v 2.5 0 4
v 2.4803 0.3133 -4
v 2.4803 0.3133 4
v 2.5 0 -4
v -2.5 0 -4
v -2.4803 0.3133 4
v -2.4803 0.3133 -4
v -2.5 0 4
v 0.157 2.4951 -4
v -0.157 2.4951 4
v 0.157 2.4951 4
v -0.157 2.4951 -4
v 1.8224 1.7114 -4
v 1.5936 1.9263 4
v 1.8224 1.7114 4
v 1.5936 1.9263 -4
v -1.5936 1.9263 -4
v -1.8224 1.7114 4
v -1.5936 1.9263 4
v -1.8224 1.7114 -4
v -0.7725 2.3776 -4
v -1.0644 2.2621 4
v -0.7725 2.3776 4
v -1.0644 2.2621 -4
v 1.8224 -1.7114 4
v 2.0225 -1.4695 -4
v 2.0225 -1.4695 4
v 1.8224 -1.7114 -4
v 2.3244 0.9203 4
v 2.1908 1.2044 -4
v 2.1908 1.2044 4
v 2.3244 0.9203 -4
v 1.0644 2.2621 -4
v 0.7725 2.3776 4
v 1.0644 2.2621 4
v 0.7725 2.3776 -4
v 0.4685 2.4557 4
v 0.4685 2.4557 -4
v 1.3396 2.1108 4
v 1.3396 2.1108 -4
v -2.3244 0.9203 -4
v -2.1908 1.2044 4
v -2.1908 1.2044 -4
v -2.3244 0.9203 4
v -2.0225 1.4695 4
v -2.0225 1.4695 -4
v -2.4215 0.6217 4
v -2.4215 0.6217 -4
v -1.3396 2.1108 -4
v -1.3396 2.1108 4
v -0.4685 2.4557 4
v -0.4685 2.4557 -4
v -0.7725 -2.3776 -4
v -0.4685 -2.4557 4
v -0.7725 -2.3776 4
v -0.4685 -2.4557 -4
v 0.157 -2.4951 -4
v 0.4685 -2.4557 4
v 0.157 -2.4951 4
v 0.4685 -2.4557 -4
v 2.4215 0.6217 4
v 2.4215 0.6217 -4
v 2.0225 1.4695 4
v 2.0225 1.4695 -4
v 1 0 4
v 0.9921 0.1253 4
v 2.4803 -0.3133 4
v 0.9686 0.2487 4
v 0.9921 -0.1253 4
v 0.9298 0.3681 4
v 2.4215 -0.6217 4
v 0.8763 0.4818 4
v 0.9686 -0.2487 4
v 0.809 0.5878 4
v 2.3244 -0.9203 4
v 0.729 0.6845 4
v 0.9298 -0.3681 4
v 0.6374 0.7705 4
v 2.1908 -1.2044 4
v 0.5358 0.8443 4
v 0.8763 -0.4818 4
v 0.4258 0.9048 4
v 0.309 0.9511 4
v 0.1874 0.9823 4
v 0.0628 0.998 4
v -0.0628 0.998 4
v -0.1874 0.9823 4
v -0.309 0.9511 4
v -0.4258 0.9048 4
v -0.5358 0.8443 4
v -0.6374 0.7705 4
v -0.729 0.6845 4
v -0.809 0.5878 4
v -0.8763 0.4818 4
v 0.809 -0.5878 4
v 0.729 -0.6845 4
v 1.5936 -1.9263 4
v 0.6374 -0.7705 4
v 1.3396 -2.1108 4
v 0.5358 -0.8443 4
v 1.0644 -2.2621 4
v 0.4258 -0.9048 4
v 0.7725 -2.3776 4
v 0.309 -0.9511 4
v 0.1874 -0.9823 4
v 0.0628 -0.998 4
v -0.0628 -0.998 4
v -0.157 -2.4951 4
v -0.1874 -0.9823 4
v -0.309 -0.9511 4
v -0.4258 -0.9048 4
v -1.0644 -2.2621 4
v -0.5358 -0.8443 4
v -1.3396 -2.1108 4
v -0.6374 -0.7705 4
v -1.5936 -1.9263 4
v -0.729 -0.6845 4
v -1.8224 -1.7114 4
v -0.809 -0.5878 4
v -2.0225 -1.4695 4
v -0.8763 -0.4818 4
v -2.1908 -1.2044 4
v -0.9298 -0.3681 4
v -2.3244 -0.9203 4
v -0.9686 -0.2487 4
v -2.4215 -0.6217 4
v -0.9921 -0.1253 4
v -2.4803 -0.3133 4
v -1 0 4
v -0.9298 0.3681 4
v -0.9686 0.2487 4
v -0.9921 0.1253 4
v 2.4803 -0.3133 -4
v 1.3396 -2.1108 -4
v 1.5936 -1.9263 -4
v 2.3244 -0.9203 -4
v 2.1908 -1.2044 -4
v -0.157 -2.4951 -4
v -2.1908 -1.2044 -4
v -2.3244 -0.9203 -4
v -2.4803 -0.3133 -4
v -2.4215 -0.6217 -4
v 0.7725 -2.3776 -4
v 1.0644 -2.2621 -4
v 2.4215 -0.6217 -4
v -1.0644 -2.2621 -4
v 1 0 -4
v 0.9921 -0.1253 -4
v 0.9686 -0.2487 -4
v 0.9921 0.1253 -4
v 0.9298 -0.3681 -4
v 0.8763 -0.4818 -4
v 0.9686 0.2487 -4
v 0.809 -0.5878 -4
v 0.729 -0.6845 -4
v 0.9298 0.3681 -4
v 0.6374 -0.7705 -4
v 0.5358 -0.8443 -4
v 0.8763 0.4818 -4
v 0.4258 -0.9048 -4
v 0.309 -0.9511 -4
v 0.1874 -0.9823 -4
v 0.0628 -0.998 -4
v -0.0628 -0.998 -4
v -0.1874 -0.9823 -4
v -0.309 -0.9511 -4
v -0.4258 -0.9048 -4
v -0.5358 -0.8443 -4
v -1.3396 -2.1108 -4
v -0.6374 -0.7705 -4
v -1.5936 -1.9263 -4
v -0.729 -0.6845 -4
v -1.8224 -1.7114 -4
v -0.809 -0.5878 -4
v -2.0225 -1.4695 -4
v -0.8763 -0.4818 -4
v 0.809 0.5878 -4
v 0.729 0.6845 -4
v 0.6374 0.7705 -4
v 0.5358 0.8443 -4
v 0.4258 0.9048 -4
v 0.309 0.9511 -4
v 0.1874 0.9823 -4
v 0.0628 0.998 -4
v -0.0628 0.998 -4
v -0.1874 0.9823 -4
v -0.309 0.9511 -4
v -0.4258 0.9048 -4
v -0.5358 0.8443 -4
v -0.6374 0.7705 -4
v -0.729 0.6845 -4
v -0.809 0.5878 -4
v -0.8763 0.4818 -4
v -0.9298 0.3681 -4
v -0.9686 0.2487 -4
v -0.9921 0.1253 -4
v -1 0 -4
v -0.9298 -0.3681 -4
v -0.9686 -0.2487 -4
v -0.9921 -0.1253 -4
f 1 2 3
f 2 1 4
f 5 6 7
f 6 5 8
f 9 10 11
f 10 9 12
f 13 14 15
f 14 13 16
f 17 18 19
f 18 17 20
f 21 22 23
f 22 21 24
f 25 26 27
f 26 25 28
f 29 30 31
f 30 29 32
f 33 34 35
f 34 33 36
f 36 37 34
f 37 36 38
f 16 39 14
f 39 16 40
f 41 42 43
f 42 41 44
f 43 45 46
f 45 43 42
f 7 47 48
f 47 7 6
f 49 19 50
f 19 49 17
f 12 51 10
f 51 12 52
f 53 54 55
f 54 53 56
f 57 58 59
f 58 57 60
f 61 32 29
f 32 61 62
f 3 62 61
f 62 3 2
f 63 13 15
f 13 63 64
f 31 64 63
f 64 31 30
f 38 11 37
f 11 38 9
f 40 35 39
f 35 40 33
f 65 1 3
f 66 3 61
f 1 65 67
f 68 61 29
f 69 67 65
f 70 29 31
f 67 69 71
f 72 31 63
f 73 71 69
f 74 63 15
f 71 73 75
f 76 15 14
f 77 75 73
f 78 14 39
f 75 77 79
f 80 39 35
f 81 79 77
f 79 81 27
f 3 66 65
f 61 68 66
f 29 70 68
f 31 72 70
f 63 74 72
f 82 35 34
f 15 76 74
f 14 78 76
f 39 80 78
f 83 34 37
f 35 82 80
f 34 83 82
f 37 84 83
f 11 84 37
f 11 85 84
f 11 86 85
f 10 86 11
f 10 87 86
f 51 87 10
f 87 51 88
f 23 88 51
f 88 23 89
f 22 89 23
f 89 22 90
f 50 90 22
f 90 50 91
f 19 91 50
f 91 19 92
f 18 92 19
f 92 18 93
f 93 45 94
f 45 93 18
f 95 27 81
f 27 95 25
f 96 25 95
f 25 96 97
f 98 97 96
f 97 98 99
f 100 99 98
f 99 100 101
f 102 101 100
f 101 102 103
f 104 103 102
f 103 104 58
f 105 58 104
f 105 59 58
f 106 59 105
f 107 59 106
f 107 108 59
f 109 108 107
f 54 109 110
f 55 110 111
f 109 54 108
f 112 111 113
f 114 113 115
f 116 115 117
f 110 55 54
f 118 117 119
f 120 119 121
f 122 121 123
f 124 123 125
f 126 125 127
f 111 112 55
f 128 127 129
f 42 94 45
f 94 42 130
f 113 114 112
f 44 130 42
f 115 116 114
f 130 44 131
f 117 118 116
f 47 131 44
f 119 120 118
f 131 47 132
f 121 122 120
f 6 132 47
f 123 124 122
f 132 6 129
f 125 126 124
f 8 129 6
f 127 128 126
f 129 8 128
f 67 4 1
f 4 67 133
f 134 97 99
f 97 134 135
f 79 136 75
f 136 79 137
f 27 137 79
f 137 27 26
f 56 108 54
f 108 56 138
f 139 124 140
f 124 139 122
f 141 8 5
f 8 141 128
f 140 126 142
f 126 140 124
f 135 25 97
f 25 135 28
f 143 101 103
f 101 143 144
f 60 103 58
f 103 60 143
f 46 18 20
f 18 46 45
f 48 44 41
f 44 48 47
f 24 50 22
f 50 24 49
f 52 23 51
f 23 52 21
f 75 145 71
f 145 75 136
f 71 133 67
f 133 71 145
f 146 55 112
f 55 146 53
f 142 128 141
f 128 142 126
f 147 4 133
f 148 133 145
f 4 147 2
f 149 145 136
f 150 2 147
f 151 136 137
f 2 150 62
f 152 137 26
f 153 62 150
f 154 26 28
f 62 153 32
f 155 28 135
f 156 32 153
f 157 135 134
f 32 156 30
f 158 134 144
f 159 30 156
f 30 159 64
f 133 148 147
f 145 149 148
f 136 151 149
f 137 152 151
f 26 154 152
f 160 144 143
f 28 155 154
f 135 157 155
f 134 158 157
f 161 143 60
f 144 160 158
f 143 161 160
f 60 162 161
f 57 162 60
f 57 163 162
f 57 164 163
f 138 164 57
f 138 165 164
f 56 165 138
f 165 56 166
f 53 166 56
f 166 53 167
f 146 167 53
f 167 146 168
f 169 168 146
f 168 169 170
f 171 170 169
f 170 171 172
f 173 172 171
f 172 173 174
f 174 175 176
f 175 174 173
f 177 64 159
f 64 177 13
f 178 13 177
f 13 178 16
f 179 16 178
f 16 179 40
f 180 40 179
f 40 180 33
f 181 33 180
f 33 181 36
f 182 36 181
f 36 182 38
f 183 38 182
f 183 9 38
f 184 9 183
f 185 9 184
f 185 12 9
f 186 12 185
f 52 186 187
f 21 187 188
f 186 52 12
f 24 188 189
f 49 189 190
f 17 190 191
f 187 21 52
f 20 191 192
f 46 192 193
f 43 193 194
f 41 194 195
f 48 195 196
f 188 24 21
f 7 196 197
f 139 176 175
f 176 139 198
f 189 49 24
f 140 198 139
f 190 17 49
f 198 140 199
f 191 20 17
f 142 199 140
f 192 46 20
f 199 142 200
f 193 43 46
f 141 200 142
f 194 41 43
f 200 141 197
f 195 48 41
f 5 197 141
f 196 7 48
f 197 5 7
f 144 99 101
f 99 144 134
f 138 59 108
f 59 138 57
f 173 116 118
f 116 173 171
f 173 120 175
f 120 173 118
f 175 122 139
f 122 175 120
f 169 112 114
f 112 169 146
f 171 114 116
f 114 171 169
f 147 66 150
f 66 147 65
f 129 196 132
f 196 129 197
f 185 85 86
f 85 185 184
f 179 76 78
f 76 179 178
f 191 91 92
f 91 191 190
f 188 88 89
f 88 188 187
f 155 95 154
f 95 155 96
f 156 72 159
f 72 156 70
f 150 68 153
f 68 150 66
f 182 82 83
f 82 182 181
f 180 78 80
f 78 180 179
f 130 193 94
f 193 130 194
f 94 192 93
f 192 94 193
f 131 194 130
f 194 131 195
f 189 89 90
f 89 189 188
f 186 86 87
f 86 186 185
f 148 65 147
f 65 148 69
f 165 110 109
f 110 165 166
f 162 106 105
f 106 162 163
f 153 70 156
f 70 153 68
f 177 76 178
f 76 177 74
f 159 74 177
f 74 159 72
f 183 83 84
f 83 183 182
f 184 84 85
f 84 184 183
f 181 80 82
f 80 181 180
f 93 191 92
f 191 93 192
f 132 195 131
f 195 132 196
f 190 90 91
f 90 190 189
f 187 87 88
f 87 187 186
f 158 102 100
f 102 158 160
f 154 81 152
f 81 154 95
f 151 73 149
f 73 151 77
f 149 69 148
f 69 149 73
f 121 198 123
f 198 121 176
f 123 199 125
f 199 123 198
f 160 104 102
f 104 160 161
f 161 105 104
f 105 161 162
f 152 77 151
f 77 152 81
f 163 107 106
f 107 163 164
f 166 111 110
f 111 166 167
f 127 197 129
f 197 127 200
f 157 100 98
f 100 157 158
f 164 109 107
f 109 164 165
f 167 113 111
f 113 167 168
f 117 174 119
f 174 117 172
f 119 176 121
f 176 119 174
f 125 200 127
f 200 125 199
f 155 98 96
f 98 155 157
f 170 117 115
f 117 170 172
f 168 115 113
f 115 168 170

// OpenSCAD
$fn = 50;


difference() {
	union() {
		translate(v = [0, 0, -4.0000000000]) {
			cylinder(h = 8, r = 2.5000000000);
		}
	}
	union() {
		translate(v = [0, 0, -100.0000000000]) {
			cylinder(h = 200, r = 1.0000000000);
		}
	}
}
